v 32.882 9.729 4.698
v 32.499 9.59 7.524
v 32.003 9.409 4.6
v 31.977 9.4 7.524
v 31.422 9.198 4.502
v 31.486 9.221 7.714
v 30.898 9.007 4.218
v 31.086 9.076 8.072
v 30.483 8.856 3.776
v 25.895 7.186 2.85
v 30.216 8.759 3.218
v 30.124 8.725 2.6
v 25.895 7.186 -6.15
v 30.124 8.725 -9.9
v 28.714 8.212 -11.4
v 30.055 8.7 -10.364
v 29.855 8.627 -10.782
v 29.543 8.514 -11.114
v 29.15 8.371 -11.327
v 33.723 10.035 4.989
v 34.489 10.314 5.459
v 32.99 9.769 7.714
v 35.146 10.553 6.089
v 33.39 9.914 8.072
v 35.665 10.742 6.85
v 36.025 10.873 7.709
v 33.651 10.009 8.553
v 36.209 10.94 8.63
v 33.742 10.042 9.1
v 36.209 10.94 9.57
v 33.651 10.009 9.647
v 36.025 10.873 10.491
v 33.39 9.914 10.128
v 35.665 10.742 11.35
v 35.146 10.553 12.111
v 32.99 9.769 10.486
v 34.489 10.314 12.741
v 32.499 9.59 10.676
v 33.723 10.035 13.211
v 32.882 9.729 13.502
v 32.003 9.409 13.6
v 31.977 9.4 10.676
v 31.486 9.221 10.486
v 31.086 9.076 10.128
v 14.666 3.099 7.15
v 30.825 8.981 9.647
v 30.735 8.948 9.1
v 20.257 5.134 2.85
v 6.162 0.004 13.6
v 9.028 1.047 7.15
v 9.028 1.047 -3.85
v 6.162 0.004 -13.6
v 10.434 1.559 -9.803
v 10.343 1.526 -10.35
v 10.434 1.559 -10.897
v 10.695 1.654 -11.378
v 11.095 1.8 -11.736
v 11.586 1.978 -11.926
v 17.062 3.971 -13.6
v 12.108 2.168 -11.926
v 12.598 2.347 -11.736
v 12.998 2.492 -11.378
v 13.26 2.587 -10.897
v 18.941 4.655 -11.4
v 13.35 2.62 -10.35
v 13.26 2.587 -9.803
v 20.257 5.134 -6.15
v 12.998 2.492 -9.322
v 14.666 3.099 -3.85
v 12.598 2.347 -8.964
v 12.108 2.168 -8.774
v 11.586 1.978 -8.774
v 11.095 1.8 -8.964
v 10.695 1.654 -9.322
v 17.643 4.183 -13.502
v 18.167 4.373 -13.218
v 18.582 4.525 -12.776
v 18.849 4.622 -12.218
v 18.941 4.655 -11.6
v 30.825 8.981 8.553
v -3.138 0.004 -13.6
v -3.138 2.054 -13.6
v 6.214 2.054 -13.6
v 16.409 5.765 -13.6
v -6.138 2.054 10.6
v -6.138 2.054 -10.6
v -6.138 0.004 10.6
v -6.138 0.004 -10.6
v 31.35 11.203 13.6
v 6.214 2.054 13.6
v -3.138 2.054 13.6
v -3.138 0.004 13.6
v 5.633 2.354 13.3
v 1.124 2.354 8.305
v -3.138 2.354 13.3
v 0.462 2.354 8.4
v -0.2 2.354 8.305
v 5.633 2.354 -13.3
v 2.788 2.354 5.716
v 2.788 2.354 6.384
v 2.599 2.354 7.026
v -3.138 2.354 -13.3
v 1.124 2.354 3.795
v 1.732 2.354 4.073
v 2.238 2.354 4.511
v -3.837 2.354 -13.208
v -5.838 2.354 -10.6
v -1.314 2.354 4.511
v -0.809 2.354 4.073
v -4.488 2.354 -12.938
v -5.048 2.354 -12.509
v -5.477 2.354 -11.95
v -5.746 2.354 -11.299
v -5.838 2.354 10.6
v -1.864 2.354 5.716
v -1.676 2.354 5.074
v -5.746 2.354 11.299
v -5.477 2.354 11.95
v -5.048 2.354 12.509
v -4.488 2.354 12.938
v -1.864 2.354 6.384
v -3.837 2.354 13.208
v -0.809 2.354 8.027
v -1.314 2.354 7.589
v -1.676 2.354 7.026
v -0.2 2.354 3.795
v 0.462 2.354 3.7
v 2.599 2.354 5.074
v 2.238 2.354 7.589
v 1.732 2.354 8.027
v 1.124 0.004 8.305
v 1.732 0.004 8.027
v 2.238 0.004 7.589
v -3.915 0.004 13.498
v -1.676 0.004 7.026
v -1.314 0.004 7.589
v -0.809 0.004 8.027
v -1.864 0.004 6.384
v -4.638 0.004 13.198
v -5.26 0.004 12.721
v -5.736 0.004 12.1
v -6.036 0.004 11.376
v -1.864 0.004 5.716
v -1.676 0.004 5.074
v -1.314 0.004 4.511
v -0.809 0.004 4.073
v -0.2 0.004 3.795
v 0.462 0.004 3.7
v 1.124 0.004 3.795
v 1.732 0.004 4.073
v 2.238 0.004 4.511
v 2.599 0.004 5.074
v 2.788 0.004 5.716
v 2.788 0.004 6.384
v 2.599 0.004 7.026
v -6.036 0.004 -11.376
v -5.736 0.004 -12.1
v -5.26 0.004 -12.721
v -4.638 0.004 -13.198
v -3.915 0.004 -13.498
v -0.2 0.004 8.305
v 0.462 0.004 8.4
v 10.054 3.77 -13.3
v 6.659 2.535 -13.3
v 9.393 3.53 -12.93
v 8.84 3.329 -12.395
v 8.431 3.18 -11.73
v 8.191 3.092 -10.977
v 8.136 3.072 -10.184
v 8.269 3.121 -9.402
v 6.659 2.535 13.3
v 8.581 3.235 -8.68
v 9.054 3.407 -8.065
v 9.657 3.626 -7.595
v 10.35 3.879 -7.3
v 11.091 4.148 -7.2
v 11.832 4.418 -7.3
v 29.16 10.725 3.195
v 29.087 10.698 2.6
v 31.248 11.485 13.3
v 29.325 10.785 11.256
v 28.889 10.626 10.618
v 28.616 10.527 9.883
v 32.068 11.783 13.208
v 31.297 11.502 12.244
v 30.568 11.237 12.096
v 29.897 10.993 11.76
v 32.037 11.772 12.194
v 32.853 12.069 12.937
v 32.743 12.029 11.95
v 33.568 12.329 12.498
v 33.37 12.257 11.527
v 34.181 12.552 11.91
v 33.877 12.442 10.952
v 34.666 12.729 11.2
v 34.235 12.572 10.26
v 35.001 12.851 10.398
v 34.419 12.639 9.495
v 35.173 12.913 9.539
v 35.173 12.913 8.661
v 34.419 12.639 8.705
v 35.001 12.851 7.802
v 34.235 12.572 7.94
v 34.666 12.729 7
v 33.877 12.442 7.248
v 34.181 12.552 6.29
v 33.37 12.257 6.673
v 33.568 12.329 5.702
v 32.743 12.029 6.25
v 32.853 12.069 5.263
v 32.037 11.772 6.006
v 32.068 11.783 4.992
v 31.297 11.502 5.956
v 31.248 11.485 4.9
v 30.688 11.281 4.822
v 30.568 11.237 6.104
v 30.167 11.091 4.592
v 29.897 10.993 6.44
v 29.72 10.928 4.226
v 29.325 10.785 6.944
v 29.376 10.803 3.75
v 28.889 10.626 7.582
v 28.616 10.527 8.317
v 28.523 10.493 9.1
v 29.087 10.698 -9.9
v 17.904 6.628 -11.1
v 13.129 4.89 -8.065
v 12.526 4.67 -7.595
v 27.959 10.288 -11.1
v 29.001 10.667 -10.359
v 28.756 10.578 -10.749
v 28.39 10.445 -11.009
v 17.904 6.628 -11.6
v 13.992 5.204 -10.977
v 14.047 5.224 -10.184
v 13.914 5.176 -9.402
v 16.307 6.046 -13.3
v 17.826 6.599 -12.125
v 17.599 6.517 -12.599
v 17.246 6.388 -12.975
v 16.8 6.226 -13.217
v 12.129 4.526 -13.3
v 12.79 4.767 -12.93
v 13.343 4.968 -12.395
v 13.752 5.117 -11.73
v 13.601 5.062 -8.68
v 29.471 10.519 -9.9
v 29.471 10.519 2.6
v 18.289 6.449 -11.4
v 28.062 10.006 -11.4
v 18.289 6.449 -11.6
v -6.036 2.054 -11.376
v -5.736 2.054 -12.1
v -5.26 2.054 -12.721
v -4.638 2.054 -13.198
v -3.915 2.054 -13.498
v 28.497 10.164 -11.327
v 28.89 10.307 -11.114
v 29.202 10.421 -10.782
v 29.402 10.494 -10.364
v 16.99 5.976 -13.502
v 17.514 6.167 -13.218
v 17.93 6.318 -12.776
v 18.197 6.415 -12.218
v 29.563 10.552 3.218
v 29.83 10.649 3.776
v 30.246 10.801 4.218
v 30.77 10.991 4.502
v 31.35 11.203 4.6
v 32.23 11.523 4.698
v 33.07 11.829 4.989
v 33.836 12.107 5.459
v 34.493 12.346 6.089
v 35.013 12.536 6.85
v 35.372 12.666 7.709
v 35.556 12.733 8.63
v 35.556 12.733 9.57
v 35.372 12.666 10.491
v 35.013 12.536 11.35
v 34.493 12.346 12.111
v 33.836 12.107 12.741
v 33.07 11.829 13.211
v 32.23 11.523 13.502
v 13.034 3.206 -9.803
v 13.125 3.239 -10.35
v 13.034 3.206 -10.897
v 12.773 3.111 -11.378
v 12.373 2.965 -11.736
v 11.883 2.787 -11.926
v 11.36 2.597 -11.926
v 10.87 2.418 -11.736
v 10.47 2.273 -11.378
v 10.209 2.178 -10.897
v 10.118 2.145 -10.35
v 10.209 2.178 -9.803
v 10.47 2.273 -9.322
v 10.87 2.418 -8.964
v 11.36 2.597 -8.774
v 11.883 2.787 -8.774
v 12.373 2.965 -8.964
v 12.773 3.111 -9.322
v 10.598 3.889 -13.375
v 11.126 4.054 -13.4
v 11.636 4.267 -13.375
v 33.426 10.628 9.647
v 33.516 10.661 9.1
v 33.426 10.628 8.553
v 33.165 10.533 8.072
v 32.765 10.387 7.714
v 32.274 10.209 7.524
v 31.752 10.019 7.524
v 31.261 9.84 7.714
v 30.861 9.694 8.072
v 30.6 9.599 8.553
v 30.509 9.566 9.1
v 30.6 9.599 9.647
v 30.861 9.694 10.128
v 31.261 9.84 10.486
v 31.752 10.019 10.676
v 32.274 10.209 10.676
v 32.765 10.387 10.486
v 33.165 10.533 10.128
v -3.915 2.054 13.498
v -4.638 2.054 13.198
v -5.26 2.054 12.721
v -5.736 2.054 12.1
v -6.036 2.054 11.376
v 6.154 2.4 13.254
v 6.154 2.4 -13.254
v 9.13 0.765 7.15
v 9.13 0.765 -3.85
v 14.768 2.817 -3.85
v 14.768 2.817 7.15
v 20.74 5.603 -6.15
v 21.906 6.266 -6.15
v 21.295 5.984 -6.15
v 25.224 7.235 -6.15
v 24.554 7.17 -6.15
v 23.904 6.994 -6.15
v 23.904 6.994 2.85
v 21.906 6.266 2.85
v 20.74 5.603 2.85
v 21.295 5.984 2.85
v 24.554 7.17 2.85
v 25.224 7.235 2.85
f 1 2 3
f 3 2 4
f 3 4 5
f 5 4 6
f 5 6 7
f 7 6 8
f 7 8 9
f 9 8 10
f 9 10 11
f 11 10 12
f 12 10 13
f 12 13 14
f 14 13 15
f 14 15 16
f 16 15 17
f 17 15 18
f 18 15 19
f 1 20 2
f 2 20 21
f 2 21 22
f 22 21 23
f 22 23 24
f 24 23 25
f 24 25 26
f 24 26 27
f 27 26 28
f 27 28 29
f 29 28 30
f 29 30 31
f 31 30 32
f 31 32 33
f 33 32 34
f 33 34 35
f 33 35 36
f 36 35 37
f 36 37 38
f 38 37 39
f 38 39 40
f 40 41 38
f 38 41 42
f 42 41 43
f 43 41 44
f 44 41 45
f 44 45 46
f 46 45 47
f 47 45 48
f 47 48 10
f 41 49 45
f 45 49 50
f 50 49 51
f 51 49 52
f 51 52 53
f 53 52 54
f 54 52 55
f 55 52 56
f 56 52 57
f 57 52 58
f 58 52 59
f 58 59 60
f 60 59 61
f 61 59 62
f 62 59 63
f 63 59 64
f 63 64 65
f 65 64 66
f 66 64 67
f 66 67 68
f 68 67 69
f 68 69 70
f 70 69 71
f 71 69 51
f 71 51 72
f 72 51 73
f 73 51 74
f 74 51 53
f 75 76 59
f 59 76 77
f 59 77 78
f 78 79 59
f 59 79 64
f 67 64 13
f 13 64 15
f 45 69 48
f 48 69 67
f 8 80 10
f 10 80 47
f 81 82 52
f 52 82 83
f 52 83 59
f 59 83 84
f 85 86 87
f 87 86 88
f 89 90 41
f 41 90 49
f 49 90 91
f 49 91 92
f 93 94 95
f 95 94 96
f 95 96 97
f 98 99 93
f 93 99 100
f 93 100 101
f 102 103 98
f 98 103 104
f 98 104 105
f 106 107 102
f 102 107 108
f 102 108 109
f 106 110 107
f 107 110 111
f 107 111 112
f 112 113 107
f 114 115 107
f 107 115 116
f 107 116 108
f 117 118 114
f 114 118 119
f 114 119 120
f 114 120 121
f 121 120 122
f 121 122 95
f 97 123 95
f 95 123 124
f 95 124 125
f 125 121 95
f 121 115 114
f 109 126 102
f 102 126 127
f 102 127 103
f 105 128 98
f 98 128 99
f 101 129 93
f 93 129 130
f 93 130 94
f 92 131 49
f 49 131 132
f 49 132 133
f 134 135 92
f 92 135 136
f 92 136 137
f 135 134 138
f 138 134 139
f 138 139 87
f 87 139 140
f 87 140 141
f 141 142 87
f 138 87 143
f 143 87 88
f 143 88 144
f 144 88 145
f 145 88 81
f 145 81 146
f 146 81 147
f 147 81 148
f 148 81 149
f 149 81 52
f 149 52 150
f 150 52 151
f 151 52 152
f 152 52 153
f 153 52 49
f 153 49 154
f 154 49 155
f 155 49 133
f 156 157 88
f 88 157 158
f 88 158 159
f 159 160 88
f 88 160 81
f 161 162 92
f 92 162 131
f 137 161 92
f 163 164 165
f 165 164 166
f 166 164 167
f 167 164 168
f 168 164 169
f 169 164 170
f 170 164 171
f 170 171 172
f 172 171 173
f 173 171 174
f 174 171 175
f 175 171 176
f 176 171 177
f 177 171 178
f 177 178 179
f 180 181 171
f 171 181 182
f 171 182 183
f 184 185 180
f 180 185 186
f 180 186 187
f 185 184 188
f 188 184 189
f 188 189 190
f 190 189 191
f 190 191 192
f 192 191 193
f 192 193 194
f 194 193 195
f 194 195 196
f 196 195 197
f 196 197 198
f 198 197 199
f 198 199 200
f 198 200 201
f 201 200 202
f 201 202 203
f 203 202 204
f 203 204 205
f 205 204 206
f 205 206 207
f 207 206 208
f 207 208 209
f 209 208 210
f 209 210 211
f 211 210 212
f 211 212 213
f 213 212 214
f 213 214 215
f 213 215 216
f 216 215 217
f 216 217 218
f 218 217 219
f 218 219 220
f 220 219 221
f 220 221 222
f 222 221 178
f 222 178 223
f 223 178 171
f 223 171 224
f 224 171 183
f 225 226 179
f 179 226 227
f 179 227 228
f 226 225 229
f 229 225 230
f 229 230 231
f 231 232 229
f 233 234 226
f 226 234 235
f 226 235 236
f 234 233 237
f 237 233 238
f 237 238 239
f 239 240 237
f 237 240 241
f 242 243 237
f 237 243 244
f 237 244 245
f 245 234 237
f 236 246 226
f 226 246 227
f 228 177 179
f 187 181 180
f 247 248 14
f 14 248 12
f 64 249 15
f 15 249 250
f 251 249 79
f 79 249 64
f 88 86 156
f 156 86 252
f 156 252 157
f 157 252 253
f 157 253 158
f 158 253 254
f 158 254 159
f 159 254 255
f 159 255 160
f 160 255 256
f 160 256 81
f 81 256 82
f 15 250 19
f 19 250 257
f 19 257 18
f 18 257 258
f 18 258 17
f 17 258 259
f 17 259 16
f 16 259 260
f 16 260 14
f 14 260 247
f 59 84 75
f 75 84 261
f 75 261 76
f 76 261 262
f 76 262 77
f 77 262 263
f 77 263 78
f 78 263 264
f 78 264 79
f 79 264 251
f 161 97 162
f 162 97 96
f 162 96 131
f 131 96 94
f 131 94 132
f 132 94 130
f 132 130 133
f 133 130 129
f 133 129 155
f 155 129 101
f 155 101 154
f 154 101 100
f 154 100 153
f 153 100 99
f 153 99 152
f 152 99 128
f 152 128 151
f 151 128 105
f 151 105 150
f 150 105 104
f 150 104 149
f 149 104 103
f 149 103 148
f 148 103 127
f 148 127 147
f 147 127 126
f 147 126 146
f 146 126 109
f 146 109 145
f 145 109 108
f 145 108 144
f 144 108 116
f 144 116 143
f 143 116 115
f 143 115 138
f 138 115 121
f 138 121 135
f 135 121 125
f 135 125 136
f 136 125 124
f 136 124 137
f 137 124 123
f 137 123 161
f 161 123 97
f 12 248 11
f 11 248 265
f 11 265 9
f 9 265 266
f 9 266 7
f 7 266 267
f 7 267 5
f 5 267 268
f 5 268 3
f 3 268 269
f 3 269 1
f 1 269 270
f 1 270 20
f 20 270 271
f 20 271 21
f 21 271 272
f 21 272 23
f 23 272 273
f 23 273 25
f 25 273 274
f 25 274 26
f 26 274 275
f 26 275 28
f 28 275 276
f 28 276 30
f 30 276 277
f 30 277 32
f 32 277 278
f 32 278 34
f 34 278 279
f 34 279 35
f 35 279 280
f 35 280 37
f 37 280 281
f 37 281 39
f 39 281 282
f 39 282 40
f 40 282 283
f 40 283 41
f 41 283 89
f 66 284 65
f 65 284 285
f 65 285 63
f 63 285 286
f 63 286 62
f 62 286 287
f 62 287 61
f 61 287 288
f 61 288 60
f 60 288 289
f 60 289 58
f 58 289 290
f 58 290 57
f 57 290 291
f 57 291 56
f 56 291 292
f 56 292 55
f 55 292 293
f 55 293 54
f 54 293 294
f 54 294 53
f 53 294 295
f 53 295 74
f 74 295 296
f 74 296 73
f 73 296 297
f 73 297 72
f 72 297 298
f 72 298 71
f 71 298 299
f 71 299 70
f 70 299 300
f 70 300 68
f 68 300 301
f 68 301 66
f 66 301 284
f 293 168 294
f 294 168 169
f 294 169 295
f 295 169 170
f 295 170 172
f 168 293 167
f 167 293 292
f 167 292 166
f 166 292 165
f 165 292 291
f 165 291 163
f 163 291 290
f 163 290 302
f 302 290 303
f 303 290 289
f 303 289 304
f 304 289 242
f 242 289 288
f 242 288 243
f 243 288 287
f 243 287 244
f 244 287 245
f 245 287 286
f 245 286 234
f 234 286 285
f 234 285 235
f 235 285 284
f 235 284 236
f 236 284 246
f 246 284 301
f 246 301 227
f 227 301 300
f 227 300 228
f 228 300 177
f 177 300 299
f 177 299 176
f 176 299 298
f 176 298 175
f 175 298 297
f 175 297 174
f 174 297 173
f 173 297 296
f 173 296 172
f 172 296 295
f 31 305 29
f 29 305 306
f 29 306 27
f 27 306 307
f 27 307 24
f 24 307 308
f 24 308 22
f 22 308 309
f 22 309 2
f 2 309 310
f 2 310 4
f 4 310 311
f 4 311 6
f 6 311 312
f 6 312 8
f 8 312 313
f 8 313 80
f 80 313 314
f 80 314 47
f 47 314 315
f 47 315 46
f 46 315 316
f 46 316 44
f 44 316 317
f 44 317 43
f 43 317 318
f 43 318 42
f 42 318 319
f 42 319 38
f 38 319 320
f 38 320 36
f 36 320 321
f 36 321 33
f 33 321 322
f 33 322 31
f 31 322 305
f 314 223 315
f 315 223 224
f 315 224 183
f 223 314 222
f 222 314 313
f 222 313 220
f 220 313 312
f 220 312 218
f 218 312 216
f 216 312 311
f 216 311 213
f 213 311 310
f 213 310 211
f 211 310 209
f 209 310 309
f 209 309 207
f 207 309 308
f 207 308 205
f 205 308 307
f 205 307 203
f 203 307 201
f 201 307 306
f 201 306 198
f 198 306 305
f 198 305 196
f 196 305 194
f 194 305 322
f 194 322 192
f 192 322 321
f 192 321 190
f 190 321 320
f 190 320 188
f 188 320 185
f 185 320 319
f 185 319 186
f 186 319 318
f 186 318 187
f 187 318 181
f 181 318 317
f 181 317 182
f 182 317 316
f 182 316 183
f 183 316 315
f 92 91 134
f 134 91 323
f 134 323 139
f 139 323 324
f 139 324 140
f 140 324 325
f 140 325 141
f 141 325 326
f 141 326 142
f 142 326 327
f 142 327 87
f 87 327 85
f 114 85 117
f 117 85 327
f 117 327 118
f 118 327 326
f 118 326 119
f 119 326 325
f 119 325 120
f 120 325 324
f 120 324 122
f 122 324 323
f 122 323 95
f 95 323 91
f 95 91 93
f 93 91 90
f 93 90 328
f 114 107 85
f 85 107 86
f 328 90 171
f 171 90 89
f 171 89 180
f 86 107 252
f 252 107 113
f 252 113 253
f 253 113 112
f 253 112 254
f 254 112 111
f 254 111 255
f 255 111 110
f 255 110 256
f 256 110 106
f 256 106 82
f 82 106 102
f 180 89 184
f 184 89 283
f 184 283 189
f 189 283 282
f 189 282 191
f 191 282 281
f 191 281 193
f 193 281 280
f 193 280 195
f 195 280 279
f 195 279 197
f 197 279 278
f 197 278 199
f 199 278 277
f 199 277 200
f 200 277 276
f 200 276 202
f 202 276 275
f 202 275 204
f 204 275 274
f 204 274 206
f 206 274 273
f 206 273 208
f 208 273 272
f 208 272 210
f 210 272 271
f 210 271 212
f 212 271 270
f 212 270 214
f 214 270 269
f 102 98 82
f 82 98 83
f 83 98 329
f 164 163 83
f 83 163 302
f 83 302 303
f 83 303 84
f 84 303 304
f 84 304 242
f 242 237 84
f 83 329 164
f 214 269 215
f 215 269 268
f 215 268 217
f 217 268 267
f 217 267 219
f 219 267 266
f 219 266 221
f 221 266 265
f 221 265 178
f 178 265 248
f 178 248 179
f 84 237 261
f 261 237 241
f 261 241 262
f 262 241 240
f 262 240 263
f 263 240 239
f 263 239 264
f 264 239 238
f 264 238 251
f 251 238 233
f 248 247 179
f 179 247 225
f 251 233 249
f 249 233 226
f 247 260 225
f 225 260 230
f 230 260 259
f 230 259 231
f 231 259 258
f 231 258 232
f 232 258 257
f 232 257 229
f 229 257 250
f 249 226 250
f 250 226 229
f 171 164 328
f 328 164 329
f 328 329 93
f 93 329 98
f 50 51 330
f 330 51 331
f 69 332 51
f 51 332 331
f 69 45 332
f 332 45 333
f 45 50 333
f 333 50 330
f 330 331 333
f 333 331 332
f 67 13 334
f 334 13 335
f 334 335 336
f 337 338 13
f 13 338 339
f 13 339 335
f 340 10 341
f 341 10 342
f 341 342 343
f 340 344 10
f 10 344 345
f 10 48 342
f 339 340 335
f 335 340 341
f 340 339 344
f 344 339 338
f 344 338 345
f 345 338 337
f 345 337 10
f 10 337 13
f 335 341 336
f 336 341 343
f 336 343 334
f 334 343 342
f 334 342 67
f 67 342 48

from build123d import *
from OCP.BRepFilletAPI import BRepFilletAPI_MakeFillet

# Parameters (mm, degrees)
SKETCH1_W                                       = 12.3
SKETCH1_H                                       = 27.2
BOSS_EXTRUDE1_DEPTH                             = 2.35
BOSS_EXTRUDE2_DEPTH                             = 27.2
SKETCH3_W                                       = 11.9
SKETCH3_H                                       = 2.2
CUT_EXTRUDE1_DEPTH                              = 35.76078799
FILLET1_R1                                      = 2
FILLET1_R2                                      = 1.5
FILLET1_R3                                      = 3
SKETCH4_R                                       = 2.35
CUT_EXTRUDE2_DEPTH                              = 35.103483837
SKETCH6_W                                       = 6.5
SKETCH6_H                                       = 9
BOSS_EXTRUDE4_DEPTH                             = 2.208277659
FILLET3_R                                       = 2
FILLET4_R                                       = 4.5
CSK_FOR_M3_FLAT_HEAD_MACHINE_SCREW1_D           = 3.2
CSK_FOR_M3_FLAT_HEAD_MACHINE_SCREW1_CSINK_D     = 6.3
CSK_FOR_M3_FLAT_HEAD_MACHINE_SCREW1_CSINK_ANGLE = 90
FILLET6_R                                       = 3
CHAMFER2_SIZE                                   = 0.3
FILLET7_R                                       = 3
SKETCH14_W                                      = 6
SKETCH14_H                                      = 11
BOSS_EXTRUDE5_DEPTH                             = 0.3
SKETCH15_W                                      = 6
SKETCH15_H                                      = 9
CUT_EXTRUDE3_DEPTH                              = 0.5
FILLET8_R                                       = 4


# Some blends are built 0.0001 mm under size
with BuildPart() as part:
    # Sketch1 → Boss-Extrude1 (new body)
    with BuildSketch(Plane(origin=(0, 0, 0), x_dir=(1, 0, 0), z_dir=(0, 1, 0))):
        Rectangle(SKETCH1_W, SKETCH1_H)
    extrude(amount=BOSS_EXTRUDE1_DEPTH)

    # Sketch2 → Boss-Extrude2 (add)
    with BuildSketch(Plane.XY.offset(13.6)):
        Polygon((6.15, 2.35), (29.356886389, 10.796615875), (30.11216183, 8.721513655), (6.15, 0), align=None)
    extrude(amount=-BOSS_EXTRUDE2_DEPTH)

    # Sketch3 → Cut-Extrude1 (cut, through all)
    with BuildSketch(Plane(origin=(-0.035862104, 0.098530321, 0), x_dir=(0.9396926207859082, 0.34202014332566943, 0), z_dir=(-0.34202014332566943, 0.9396926207859082, 0))):
        with Locations((25.329109618, 12.5)):
            Rectangle(SKETCH3_W, SKETCH3_H)
    extrude(amount=-CUT_EXTRUDE1_DEPTH, mode=Mode.SUBTRACT)

    # Fillet1: one fillet with a radius per group of edges: ONE call of the kernel's fillet builder (fillet() takes one radius for all edges)
    fillet1_edges_1 = [part.edges().sort_by_distance(p)[0] for p in [
        (18.552181922, 5.68902506, -13.6),
    ]]
    fillet1_edges_2 = [part.edges().sort_by_distance(p)[0] for p in [
        (29.734524109, 9.759064765, -11.4),
    ]]
    fillet1_edges_3 = [part.edges().sort_by_distance(p)[0] for p in [
        (-6.15, 1.175, -13.6),
    ]]
    fillet1 = BRepFilletAPI_MakeFillet(part.part.solid().wrapped)
    for e in fillet1_edges_1:
        fillet1.Add(FILLET1_R1, e.wrapped)
    for e in fillet1_edges_2:
        fillet1.Add(FILLET1_R2, e.wrapped)
    for e in fillet1_edges_3:
        fillet1.Add(FILLET1_R3, e.wrapped)
    add(Compound.cast(fillet1.Shape()), mode=Mode.REPLACE)

    # Sketch4 → Cut-Extrude2 (cut, through all)
    with BuildSketch(Plane(origin=(0, 2.35, 0), x_dir=(1, 0, 0), z_dir=(0, 1, 0))):
        with Locations(Location((0.45, -6.05, 0), (0, 0, 270))):
            Circle(SKETCH4_R)
    extrude(amount=-CUT_EXTRUDE2_DEPTH, mode=Mode.SUBTRACT)

    # Sketch6 → Boss-Extrude4 (add)
    with BuildSketch(Plane(origin=(-0.035862104, 0.098530321, 0), x_dir=(0.9396926207859082, 0.34202014332566943, 0), z_dir=(-0.34202014332566943, 0.9396926207859082, 0))):
        with Locations((34.529109618, -9.1)):
            Rectangle(SKETCH6_W, SKETCH6_H)
    extrude(amount=-BOSS_EXTRUDE4_DEPTH)

    # Fillet3
    fillet3_edges = [part.edges().sort_by_distance(p)[0] for p in [
        (29.734524109, 9.759064765, 4.6),
    ]]
    fillet(fillet3_edges, radius=FILLET3_R)

    # Fillet4
    fillet4_edges = [part.edges().sort_by_distance(p)[0] for p in [
        (35.842526144, 11.982195697, 13.6),
        (35.842526144, 11.982195697, 4.6),
    ]]
    fillet(fillet4_edges, radius=FILLET4_R - 0.0001)  # a hair under: the kernel refuses the full size

    # CSK for M3 Flat Head Machine Screw1 (through all)
    with Locations(Plane(origin=(-0.035862104, 0.098530321, 0), x_dir=(0.9396926207859082, 0.34202014332566943, 0), z_dir=(-0.34202014332566943, 0.9396926207859082, 0))):
        with Locations((33.529109618, -9.1), (11.829109618, 10.35)):
            CounterSinkHole(CSK_FOR_M3_FLAT_HEAD_MACHINE_SCREW1_D / 2, CSK_FOR_M3_FLAT_HEAD_MACHINE_SCREW1_CSINK_D / 2, counter_sink_angle=CSK_FOR_M3_FLAT_HEAD_MACHINE_SCREW1_CSINK_ANGLE)

    # Fillet6
    fillet6_edges = [part.edges().sort_by_distance(p)[0] for p in [
        (-6.15, 1.175, 13.6),
    ]]
    fillet(fillet6_edges, radius=FILLET6_R)

    # Chamfer2
    # the kernel refuses this chamfer: 0.3 mm, written as the material it takes off along each edge
    with BuildSketch(Plane(origin=(-3.15, 2.35, 13.6), x_dir=(0, -1, 0), z_dir=(1, 0, 0))) as chamfer2_piece_1_section:
        Polygon((CHAMFER2_SIZE, 0), (0, CHAMFER2_SIZE), (0, 0), align=None)
    chamfer2_piece_1 = extrude(amount=10.071504896, mode=Mode.PRIVATE)
    chamfer2_piece_1 = split(chamfer2_piece_1, bisect_by=Plane(origin=(-2.554750309, 0.714564914, 11.859606334), z_dir=(-0.2418447626479751, 0.6644630243886727, 0.7071067811865496)), keep=Keep.TOP, mode=Mode.PRIVATE)
    add(chamfer2_piece_1, mode=Mode.SUBTRACT)
    with BuildSketch(Plane(origin=(-3.15, 2.35, 10.6), x_dir=(-1, 0, 0), z_dir=(0, 0, -1))) as chamfer2_piece_2:
        Polygon((3, -CHAMFER2_SIZE), (3 - CHAMFER2_SIZE, 0), (3, 0), align=None)
    revolve(axis=Axis((-3.15, 2.35, 10.6), (0, 1, 0)), revolution_arc=90, mode=Mode.SUBTRACT)
    with BuildSketch(Plane(origin=(5.425022542, 2.086129785, -13.6), x_dir=(0.34202014332566943, -0.9396926207859082, 0), z_dir=(0.9396926207859081, 0.34202014332566943, 0))) as chamfer2_piece_3_section:
        Polygon((CHAMFER2_SIZE, 0), (0, -CHAMFER2_SIZE), (0, 0), align=None)
    chamfer2_piece_3 = extrude(amount=11.56775756, mode=Mode.PRIVATE)
    chamfer2_piece_3 = split(chamfer2_piece_3, bisect_by=Plane(origin=(5.425022542, 2.068064892, -13.581935108), z_dir=(0, 0.7071067811865486, -0.7071067811865465)), keep=Keep.TOP, mode=Mode.PRIVATE)
    add(chamfer2_piece_3, mode=Mode.SUBTRACT)
    with BuildSketch(Plane(origin=(17.449566743, 6.462705955, -11.4), x_dir=(0, 0, 1), z_dir=(0.9396926207859082, 0.34202014332566943, 0))) as chamfer2_piece_4_section:
        Polygon((CHAMFER2_SIZE, 0), (0, CHAMFER2_SIZE), (0, 0), align=None)
    chamfer2_piece_4 = extrude(amount=11.171504896, mode=Mode.PRIVATE)
    chamfer2_piece_4 = split(chamfer2_piece_4, bisect_by=Plane(origin=(17.590469493, 6.764872877, -11.4), z_dir=(0.42261826174069733, 0.9063077870366509, 0)), keep=Keep.TOP, mode=Mode.PRIVATE)
    add(chamfer2_piece_4, mode=Mode.SUBTRACT)
    with BuildSketch(Plane(origin=(-6.15, 2.35, -10.6), x_dir=(0, -1, 0), z_dir=(0, 0, 1))) as chamfer2_piece_5:
        Polygon((CHAMFER2_SIZE, 0), (0, CHAMFER2_SIZE), (0, 0), align=None)
    extrude(amount=21.2, mode=Mode.SUBTRACT)
    with BuildSketch(Plane(origin=(-3.15, 2.35, -10.6), x_dir=(-1, 0, 0), z_dir=(0, 0, 1))) as chamfer2_piece_6:
        Polygon((3, CHAMFER2_SIZE), (3 - CHAMFER2_SIZE, 0), (3, 0), align=None)
    revolve(axis=Axis((-3.15, 2.35, -10.6), (0, -1, 0)), revolution_arc=90, mode=Mode.SUBTRACT)
    with BuildSketch(Plane(origin=(29.356886389, 10.796615875, 2.6), x_dir=(-0.9396926207859078, -0.34202014332567043, 0), z_dir=(0, 0, -1))) as chamfer2_piece_7:
        Polygon((CHAMFER2_SIZE, 0), (0, -CHAMFER2_SIZE), (0, 0), align=None)
    extrude(amount=12.5, mode=Mode.SUBTRACT)
    with BuildSketch(Plane(origin=(18.174544201, 6.72657617, -11.6), x_dir=(-0.9396926207859083, -0.342020143325669, 0), z_dir=(0, 0, 1))) as chamfer2_piece_8_section:
        Polygon((CHAMFER2_SIZE, 0), (0, CHAMFER2_SIZE), (0, 0), align=None)
    chamfer2_piece_8 = extrude(amount=0.971504896, mode=Mode.PRIVATE)
    chamfer2_piece_8 = split(chamfer2_piece_8, bisect_by=Plane(origin=(18.260049237, 6.491653015, -11.35), z_dir=(-0.24184476264797733, 0.6644630243886783, -0.7071067811865436)), keep=Keep.TOP, mode=Mode.PRIVATE)
    add(chamfer2_piece_8, mode=Mode.SUBTRACT)
    with BuildSketch(Plane(origin=(16.29515896, 6.042535883, -11.6), x_dir=(0, 0, -1), z_dir=(-0.9396926207859082, -0.34202014332566943, 0))) as chamfer2_piece_9:
        Polygon((2 - CHAMFER2_SIZE, 0), (2, CHAMFER2_SIZE), (2, 0), align=None)
    revolve(axis=Axis((16.29515896, 6.042535883, -11.6), (0.34202014332566943, -0.9396926207859082, 0)), revolution_arc=90, mode=Mode.SUBTRACT)
    with BuildSketch(Plane(origin=(27.947347457, 10.28358566, -9.9), x_dir=(0.9396926207859081, 0.3420201433256695, 0), z_dir=(0, 0, 1))) as chamfer2_piece_10:
        Polygon((1.5 - CHAMFER2_SIZE, 0), (1.5, -CHAMFER2_SIZE), (1.5, 0), align=None)
    revolve(axis=Axis((27.947347457, 10.28358566, -9.9), (-0.34202014332566943, 0.9396926207859082, 0)), revolution_arc=90, mode=Mode.SUBTRACT)
    with BuildSketch(Plane(origin=(6.921504896, 2.35, -13.6), x_dir=(0, -1, 0), z_dir=(-1, 0, 0))) as chamfer2_piece_11_section:
        Polygon((CHAMFER2_SIZE, 0), (0, CHAMFER2_SIZE), (0, 0), align=None)
    chamfer2_piece_11 = extrude(amount=10.071504896, mode=Mode.PRIVATE)
    chamfer2_piece_11 = split(chamfer2_piece_11, bisect_by=Plane(origin=(6.927683453, 2.333024554, -13.581935108), z_dir=(-0.24184476264797608, 0.6644630243886753, -0.7071067811865468)), keep=Keep.TOP, mode=Mode.PRIVATE)
    add(chamfer2_piece_11, mode=Mode.SUBTRACT)
    with BuildSketch(Plane(origin=(31.23627163, 11.480656162, 2.6), x_dir=(0, 0, 1), z_dir=(0.9396926207859082, 0.3420201433256694, 0))) as chamfer2_piece_12:
        Polygon((2 + CHAMFER2_SIZE, 0), (2, CHAMFER2_SIZE), (2, 0), align=None)
    revolve(axis=Axis((31.23627163, 11.480656162, 2.6), (0.3420201433256694, -0.9396926207859082, 0)), revolution_arc=90, mode=Mode.SUBTRACT)
    with BuildSketch(Plane(origin=(31.236365599, 11.480690364, 13.6), x_dir=(0.34202014332566943, -0.9396926207859082, 0), z_dir=(-0.9396926207859082, -0.34202014332566943, 0))) as chamfer2_piece_13_section:
        Polygon((CHAMFER2_SIZE, 0), (0, -CHAMFER2_SIZE), (0, 0), align=None)
    chamfer2_piece_13 = extrude(amount=27.46785756, mode=Mode.PRIVATE)
    chamfer2_piece_13 = split(chamfer2_piece_13, bisect_by=Plane(origin=(31.236365599, 6.765345182, 8.884654818), z_dir=(0, 0.7071067811865486, 0.7071067811865465)), keep=Keep.TOP, mode=Mode.PRIVATE)
    add(chamfer2_piece_13, mode=Mode.SUBTRACT)
    with BuildSketch(Plane(origin=(31.236365599, 11.480690364, 9.0999), x_dir=(0, 0, -1), z_dir=(-0.9396926207859082, -0.3420201433256694, 0))) as chamfer2_piece_14:
        Polygon((4.4999 - CHAMFER2_SIZE, 0), (4.4999, CHAMFER2_SIZE), (4.4999, 0), align=None)
    revolve(axis=Axis((31.236365599, 11.480690364, 9.0999), (0.3420201433256694, -0.9396926207859082, 0)), revolution_arc=90, mode=Mode.SUBTRACT)
    with BuildSketch(Plane(origin=(31.236365599, 11.480690364, 9.1001), x_dir=(0.9396926207859081, 0.3420201433256696, 0), z_dir=(0, 0, -1))) as chamfer2_piece_15:
        Polygon((4.4999 - CHAMFER2_SIZE, 0), (4.4999, CHAMFER2_SIZE), (4.4999, 0), align=None)
    revolve(axis=Axis((31.236365599, 11.480690364, 9.1001), (0.3420201433256694, -0.9396926207859082, 0)), revolution_arc=90, mode=Mode.SUBTRACT)
    with BuildSketch(Plane(origin=(35.464888424, 13.019746807, 9.1001), x_dir=(-0.9396926207859088, -0.34202014332566755, 0), z_dir=(0, 0, -1))) as chamfer2_piece_16:
        Polygon((CHAMFER2_SIZE, 0), (0, -CHAMFER2_SIZE), (0, 0), align=None)
    extrude(amount=0.0002, mode=Mode.SUBTRACT)
    with BuildSketch(Plane(origin=(31.236365599, 11.480690364, 4.6), x_dir=(0, 0, 1), z_dir=(-0.9396926207859082, -0.34202014332566943, 0))) as chamfer2_piece_17:
        Polygon((CHAMFER2_SIZE, 0), (0, -CHAMFER2_SIZE), (0, 0), align=None)
    extrude(amount=0.0001, mode=Mode.SUBTRACT)

    # Fillet7
    fillet7_edges = [part.edges().sort_by_distance(p)[0] for p in [
        (6.15, 2.35, 0),
    ]]
    fillet(fillet7_edges, radius=FILLET7_R)

    # Sketch14 → Boss-Extrude5 (add)
    with BuildSketch(Plane(origin=(0.719413337, -1.9765719, 0), x_dir=(0.9396926207859082, 0.34202014332566943, 0), z_dir=(0.34202014332566943, -0.9396926207859082, 0))):
        with Locations((11.829109618, 1.65)):
            Rectangle(SKETCH14_W, SKETCH14_H)
    extrude(amount=BOSS_EXTRUDE5_DEPTH)

    # Sketch15 → Cut-Extrude3 (cut)
    with BuildSketch(Plane(origin=(0.719413337, -1.9765719, 0), x_dir=(0.9396926207859082, 0.34202014332566943, 0), z_dir=(0.34202014332566943, -0.9396926207859082, 0))):
        with Locations((23.779109618, -1.65)):
            Rectangle(SKETCH15_W, SKETCH15_H)
    extrude(amount=-CUT_EXTRUDE3_DEPTH, mode=Mode.SUBTRACT)

    # Fillet8
    # the kernel refuses this fillet: 4 mm, written as the material it adds along each edge
    with BuildSketch(Plane(origin=(25.712534965, 7.65226932, 7.691229183), x_dir=(0.3420201433256748, -0.9396926207859063, 0), z_dir=(0, 0, -1)), Plane(origin=(20.07437924, 5.60014846, -10.991229183), x_dir=(0.3420201433256691, -0.9396926207859082, 0), z_dir=(0, 0, 1))) as fillet8_piece_1:
        with BuildLine():
            CenterArc((4, 1.936491673), FILLET8_R, 180, 28.955024372)
            Line((0, 1.936491673), (-0.08, 1.936491673))
            Line((-0.08, 1.936491673), (-0.08, 0))
            Line((-0.08, 0), (0, -0.08))
            ThreePointArc((0, -0.08), (0.25, -0.08), (0.43, -0.038729833))
            Line((0.43, -0.038729833), (0.5, 0))
        make_face()
    extrude(amount=18.682458366)


solid = part.part
